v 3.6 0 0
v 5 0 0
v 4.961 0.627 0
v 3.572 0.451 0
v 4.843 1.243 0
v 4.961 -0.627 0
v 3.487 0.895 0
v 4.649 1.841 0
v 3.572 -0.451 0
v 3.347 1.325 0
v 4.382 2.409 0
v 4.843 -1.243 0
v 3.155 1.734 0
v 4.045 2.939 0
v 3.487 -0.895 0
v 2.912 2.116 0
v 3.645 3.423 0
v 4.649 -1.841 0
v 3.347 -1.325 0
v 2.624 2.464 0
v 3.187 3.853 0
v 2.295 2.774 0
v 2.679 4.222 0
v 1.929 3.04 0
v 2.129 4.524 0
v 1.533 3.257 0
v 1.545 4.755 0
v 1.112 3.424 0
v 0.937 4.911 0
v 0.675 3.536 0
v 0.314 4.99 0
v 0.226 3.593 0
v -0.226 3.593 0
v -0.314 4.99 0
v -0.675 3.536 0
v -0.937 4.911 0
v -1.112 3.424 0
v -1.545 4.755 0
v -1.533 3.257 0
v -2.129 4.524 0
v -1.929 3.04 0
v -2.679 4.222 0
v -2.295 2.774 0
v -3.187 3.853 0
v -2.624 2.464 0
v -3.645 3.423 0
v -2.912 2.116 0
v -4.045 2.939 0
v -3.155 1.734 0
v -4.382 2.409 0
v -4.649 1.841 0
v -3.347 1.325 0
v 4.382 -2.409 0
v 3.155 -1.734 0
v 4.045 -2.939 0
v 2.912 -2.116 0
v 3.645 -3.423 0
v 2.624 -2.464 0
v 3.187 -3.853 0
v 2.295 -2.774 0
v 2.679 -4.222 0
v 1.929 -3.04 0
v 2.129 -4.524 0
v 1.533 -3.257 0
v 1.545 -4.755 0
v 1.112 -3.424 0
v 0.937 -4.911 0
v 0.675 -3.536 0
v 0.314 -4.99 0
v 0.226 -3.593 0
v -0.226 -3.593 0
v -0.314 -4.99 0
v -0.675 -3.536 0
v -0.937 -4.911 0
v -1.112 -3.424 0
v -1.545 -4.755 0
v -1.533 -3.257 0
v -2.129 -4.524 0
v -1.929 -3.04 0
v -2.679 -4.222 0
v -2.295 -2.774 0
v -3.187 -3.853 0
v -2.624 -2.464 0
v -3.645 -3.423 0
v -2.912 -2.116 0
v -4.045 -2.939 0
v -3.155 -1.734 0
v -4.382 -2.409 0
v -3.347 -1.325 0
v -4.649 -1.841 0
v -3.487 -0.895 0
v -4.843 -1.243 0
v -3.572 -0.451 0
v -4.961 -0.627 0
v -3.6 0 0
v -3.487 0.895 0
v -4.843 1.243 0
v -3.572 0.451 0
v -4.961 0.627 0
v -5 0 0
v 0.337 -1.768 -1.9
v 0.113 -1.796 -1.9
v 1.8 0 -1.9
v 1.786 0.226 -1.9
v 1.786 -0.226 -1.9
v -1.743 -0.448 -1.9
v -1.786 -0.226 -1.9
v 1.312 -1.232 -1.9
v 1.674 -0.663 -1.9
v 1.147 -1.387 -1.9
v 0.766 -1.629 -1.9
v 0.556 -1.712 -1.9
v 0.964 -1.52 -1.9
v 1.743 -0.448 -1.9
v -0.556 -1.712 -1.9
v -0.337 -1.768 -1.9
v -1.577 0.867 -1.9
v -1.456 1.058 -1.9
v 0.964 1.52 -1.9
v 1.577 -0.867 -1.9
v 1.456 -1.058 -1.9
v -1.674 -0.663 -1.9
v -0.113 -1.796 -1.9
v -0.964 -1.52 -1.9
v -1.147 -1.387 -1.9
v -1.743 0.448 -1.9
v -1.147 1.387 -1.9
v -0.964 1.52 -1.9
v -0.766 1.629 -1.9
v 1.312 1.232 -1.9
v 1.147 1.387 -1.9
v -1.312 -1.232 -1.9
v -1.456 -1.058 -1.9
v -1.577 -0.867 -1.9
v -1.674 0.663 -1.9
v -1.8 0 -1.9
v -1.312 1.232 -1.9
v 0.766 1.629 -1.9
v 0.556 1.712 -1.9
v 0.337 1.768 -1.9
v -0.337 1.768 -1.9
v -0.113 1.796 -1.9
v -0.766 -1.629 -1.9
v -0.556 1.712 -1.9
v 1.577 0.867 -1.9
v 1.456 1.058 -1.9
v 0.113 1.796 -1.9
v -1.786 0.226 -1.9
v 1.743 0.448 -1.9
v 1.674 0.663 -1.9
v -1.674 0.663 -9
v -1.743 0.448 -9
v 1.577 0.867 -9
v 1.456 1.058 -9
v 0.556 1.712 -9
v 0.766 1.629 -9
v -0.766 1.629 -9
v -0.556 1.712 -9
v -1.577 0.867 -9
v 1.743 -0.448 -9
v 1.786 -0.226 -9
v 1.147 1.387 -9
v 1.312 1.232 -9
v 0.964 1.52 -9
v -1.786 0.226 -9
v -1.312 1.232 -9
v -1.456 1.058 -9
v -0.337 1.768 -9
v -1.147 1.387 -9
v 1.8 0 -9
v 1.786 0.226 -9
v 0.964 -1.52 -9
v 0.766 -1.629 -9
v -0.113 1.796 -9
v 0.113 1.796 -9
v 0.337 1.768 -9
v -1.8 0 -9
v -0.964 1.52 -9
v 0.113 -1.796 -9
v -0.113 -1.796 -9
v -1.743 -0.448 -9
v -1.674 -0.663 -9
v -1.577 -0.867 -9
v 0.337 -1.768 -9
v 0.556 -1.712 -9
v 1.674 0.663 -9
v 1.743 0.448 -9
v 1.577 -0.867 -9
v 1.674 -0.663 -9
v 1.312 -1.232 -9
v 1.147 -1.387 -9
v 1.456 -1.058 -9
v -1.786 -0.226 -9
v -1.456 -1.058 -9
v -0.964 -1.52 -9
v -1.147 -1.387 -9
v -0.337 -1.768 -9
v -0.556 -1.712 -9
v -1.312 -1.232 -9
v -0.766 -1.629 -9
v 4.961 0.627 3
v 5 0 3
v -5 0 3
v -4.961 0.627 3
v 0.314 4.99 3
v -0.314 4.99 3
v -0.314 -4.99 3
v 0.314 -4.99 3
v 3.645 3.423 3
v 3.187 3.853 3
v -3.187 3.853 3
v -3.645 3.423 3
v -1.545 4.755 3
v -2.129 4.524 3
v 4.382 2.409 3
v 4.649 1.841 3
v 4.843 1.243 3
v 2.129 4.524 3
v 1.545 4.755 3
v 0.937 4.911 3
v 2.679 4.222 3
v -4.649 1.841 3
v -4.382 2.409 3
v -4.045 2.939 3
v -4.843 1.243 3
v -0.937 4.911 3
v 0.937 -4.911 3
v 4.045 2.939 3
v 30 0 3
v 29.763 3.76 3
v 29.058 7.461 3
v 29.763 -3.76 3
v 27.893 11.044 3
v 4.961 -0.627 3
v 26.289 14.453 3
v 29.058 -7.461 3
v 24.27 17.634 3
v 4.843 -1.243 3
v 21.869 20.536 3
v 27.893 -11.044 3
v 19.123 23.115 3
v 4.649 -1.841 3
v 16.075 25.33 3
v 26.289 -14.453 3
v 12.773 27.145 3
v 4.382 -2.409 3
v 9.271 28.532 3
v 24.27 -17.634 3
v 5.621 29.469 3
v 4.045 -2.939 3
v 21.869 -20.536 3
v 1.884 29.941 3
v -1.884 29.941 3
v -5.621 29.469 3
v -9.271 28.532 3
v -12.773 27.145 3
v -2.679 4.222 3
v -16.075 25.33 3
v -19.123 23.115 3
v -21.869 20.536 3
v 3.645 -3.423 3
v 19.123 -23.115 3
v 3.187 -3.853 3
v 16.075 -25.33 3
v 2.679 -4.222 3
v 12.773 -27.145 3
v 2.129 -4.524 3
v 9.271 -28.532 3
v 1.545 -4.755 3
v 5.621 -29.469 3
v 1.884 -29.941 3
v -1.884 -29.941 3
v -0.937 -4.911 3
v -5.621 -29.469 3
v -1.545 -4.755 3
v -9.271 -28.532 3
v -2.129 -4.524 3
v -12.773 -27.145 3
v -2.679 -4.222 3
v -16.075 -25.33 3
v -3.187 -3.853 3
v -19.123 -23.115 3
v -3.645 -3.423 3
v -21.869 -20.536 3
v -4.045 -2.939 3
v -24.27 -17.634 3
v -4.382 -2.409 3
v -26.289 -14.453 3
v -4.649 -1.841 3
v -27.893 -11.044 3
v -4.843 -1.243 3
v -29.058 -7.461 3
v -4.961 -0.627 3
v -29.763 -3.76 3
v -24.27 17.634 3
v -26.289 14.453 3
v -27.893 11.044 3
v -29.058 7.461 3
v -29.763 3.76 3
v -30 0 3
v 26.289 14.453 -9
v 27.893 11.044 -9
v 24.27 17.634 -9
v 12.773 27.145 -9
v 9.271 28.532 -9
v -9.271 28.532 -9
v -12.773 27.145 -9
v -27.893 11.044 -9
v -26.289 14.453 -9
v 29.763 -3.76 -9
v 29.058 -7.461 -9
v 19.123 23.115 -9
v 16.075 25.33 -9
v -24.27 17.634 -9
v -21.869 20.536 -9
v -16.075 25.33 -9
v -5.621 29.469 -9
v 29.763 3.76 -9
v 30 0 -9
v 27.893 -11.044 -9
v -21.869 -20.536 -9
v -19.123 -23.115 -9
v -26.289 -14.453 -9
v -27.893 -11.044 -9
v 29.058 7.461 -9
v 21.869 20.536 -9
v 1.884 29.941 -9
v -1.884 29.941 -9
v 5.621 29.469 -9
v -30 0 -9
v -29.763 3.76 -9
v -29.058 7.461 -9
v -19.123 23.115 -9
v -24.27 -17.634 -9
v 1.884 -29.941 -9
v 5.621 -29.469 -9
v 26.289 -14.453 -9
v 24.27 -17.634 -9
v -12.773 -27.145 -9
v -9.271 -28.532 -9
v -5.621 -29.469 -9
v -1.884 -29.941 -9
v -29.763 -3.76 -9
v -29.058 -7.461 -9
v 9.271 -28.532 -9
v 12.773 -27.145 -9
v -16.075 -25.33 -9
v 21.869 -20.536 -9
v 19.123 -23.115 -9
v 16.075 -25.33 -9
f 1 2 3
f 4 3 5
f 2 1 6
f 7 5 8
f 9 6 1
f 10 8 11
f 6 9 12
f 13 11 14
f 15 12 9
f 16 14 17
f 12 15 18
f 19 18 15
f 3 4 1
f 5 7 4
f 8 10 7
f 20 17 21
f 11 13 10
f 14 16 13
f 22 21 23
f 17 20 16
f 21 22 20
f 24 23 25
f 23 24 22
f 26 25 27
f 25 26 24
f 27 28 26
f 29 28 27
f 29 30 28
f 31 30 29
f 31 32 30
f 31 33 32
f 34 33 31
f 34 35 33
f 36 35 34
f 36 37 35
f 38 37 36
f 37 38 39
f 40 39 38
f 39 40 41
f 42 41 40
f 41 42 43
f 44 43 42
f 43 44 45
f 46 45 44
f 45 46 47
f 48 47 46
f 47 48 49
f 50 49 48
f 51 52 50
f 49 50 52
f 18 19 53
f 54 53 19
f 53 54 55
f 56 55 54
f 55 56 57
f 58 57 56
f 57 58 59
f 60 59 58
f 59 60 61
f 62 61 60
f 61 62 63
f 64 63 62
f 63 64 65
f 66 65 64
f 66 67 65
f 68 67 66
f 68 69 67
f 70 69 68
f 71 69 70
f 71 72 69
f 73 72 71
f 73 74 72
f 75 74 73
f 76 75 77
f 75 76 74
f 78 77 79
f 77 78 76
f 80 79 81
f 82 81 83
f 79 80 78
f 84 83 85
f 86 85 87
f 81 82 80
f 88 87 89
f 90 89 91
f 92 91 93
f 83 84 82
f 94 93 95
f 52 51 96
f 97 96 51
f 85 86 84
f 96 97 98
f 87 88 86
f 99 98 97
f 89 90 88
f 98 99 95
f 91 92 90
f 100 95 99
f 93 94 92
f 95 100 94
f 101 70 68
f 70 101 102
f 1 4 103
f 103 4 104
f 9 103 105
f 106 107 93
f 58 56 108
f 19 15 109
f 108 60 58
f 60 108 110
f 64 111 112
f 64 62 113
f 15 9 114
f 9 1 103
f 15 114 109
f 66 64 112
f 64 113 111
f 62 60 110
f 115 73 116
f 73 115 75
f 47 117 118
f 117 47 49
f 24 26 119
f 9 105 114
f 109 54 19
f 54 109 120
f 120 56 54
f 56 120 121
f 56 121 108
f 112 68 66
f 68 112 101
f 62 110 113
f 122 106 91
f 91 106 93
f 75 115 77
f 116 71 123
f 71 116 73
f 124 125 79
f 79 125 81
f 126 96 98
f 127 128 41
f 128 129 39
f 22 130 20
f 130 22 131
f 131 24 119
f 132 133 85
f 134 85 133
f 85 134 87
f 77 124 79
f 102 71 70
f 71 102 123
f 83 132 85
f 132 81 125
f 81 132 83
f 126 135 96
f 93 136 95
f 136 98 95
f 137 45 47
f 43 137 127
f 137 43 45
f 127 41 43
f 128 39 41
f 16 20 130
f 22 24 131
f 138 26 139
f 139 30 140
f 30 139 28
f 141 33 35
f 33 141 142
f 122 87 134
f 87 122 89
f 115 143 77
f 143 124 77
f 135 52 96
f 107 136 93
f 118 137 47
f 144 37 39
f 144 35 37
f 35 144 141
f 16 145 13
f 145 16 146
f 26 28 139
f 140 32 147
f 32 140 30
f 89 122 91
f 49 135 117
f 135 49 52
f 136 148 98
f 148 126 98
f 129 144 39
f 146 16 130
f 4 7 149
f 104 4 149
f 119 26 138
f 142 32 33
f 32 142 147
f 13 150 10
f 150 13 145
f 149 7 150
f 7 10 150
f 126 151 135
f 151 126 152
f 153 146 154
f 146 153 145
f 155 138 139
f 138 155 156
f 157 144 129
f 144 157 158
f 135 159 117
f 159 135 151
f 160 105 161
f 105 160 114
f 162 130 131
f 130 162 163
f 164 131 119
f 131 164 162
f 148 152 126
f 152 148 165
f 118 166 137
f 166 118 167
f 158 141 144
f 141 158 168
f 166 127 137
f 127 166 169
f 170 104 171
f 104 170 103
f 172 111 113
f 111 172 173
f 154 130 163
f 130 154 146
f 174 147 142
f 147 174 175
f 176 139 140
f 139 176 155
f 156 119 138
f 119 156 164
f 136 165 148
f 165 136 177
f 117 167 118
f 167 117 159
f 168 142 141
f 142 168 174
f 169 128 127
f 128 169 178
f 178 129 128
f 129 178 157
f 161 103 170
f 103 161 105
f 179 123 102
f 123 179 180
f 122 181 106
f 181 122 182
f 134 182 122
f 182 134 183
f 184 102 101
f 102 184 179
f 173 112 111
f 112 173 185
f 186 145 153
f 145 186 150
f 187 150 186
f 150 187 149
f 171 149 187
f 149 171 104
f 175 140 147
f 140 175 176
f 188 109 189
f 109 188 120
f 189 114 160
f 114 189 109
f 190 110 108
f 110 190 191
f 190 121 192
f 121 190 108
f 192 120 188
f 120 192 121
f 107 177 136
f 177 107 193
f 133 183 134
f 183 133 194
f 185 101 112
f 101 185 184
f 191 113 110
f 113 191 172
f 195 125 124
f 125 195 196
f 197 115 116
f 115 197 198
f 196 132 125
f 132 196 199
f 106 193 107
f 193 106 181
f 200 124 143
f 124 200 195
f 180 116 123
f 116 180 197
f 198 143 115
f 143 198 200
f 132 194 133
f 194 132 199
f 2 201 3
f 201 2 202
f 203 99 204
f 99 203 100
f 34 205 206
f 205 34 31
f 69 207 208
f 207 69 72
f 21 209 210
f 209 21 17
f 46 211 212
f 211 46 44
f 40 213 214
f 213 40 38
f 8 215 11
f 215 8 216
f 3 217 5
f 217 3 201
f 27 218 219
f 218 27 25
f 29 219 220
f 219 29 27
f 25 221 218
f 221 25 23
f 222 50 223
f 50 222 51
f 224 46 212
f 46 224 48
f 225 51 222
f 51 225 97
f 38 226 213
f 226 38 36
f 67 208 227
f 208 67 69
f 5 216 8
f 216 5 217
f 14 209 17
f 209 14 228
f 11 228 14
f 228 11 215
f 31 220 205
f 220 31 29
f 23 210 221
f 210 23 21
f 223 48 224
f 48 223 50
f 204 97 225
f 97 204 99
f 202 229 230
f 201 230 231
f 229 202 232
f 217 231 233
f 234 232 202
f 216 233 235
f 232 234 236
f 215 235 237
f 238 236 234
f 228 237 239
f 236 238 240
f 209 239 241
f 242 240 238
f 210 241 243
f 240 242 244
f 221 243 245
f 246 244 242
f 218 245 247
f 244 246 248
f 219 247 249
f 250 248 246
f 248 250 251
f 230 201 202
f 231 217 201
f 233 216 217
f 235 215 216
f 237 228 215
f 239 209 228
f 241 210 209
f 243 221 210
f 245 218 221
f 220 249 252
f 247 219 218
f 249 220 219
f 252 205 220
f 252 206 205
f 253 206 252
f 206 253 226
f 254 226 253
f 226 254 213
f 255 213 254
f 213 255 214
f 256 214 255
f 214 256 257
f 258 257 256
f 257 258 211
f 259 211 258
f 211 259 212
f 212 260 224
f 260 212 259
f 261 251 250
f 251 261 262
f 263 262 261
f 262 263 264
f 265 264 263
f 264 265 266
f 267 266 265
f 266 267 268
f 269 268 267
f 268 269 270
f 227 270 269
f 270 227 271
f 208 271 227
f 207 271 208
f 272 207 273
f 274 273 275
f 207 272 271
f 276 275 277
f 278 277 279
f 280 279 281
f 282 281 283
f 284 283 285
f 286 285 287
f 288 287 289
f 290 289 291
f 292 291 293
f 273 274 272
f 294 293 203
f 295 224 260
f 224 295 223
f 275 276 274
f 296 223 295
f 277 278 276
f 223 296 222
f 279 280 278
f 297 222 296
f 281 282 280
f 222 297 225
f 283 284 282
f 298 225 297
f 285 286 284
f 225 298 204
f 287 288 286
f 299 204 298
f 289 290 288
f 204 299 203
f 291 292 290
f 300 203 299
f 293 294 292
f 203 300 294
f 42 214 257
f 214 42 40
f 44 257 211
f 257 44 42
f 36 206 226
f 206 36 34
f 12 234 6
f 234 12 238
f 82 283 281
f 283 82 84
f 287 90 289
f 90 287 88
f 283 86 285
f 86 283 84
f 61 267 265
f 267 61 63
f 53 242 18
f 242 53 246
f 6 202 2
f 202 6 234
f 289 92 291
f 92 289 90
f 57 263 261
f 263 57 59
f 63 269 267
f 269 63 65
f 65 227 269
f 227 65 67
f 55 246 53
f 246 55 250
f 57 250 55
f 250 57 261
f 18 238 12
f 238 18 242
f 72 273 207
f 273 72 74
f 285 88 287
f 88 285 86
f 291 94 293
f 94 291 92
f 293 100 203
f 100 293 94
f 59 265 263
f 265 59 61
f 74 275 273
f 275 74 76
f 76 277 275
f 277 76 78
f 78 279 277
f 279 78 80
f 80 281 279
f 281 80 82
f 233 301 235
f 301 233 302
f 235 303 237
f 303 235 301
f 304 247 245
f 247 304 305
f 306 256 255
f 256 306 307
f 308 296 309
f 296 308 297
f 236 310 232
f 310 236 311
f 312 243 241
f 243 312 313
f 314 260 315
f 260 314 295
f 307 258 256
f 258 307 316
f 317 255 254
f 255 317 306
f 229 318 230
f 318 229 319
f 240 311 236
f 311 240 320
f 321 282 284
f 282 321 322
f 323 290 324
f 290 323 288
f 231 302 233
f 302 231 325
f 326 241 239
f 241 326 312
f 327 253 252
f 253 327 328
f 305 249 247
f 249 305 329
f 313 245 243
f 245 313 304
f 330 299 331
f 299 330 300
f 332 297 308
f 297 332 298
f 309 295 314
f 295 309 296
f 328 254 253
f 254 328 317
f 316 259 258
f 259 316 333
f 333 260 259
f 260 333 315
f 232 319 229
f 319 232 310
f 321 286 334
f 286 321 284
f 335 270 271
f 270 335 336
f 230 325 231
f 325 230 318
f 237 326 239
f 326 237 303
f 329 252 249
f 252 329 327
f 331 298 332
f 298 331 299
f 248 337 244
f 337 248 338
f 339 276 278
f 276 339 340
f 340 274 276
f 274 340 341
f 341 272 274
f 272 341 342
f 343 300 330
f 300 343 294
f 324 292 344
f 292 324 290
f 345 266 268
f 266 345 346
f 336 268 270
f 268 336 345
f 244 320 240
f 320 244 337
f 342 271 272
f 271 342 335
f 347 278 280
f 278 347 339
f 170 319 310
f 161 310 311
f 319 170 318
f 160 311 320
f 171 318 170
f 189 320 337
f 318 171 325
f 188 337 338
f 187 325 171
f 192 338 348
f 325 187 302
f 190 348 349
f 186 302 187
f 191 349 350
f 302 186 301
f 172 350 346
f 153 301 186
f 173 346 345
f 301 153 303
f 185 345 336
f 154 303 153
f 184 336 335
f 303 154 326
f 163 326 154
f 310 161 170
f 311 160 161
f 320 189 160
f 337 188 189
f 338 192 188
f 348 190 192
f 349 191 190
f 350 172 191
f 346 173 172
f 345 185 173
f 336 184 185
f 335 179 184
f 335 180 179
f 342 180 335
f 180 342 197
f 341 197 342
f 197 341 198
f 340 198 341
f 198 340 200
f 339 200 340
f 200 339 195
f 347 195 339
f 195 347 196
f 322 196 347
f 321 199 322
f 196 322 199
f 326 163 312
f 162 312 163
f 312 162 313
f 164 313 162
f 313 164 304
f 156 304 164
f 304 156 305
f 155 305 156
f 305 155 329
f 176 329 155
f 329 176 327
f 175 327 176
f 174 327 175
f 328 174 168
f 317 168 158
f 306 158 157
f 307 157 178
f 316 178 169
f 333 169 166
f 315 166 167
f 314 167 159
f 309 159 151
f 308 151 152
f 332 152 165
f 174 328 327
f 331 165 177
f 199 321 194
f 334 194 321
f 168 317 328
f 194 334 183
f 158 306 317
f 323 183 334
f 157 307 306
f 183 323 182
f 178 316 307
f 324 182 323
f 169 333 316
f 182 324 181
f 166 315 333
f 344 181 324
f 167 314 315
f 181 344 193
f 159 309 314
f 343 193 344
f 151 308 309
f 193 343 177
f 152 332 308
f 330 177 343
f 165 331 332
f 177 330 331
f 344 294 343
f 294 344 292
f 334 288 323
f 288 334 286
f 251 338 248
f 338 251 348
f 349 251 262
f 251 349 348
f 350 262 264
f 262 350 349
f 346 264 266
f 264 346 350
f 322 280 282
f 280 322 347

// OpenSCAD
$fn = 50;

difference() {
	union() {
		translate(v = [0, 0, -9.0]) {
			cylinder(h = 12, r = 30.0);
		}
	}
	union() {
		translate(v = [0, 0, 0]) {
			rotate(a = [0, 0, 0]) {
				difference() {
					union() {
						translate(v = [0, 0, -12.0]) {
							cylinder(h = 12, r = 1.5);
						}
						translate(v = [0, 0, -1.9]) {
							cylinder(h = 1.9, r1 = 1.8, r2 = 3.6);
						}
						translate(v = [0, 0, -12.0]) {
							cylinder(h = 12, r = 1.8);
						}
						translate(v = [0, 0, -12.0]) {
							cylinder(h = 12, r = 1.5);
						}
					}
					union();
				}
			}
		}
		#cylinder(h = 3, r = 5.0);
	}
}
